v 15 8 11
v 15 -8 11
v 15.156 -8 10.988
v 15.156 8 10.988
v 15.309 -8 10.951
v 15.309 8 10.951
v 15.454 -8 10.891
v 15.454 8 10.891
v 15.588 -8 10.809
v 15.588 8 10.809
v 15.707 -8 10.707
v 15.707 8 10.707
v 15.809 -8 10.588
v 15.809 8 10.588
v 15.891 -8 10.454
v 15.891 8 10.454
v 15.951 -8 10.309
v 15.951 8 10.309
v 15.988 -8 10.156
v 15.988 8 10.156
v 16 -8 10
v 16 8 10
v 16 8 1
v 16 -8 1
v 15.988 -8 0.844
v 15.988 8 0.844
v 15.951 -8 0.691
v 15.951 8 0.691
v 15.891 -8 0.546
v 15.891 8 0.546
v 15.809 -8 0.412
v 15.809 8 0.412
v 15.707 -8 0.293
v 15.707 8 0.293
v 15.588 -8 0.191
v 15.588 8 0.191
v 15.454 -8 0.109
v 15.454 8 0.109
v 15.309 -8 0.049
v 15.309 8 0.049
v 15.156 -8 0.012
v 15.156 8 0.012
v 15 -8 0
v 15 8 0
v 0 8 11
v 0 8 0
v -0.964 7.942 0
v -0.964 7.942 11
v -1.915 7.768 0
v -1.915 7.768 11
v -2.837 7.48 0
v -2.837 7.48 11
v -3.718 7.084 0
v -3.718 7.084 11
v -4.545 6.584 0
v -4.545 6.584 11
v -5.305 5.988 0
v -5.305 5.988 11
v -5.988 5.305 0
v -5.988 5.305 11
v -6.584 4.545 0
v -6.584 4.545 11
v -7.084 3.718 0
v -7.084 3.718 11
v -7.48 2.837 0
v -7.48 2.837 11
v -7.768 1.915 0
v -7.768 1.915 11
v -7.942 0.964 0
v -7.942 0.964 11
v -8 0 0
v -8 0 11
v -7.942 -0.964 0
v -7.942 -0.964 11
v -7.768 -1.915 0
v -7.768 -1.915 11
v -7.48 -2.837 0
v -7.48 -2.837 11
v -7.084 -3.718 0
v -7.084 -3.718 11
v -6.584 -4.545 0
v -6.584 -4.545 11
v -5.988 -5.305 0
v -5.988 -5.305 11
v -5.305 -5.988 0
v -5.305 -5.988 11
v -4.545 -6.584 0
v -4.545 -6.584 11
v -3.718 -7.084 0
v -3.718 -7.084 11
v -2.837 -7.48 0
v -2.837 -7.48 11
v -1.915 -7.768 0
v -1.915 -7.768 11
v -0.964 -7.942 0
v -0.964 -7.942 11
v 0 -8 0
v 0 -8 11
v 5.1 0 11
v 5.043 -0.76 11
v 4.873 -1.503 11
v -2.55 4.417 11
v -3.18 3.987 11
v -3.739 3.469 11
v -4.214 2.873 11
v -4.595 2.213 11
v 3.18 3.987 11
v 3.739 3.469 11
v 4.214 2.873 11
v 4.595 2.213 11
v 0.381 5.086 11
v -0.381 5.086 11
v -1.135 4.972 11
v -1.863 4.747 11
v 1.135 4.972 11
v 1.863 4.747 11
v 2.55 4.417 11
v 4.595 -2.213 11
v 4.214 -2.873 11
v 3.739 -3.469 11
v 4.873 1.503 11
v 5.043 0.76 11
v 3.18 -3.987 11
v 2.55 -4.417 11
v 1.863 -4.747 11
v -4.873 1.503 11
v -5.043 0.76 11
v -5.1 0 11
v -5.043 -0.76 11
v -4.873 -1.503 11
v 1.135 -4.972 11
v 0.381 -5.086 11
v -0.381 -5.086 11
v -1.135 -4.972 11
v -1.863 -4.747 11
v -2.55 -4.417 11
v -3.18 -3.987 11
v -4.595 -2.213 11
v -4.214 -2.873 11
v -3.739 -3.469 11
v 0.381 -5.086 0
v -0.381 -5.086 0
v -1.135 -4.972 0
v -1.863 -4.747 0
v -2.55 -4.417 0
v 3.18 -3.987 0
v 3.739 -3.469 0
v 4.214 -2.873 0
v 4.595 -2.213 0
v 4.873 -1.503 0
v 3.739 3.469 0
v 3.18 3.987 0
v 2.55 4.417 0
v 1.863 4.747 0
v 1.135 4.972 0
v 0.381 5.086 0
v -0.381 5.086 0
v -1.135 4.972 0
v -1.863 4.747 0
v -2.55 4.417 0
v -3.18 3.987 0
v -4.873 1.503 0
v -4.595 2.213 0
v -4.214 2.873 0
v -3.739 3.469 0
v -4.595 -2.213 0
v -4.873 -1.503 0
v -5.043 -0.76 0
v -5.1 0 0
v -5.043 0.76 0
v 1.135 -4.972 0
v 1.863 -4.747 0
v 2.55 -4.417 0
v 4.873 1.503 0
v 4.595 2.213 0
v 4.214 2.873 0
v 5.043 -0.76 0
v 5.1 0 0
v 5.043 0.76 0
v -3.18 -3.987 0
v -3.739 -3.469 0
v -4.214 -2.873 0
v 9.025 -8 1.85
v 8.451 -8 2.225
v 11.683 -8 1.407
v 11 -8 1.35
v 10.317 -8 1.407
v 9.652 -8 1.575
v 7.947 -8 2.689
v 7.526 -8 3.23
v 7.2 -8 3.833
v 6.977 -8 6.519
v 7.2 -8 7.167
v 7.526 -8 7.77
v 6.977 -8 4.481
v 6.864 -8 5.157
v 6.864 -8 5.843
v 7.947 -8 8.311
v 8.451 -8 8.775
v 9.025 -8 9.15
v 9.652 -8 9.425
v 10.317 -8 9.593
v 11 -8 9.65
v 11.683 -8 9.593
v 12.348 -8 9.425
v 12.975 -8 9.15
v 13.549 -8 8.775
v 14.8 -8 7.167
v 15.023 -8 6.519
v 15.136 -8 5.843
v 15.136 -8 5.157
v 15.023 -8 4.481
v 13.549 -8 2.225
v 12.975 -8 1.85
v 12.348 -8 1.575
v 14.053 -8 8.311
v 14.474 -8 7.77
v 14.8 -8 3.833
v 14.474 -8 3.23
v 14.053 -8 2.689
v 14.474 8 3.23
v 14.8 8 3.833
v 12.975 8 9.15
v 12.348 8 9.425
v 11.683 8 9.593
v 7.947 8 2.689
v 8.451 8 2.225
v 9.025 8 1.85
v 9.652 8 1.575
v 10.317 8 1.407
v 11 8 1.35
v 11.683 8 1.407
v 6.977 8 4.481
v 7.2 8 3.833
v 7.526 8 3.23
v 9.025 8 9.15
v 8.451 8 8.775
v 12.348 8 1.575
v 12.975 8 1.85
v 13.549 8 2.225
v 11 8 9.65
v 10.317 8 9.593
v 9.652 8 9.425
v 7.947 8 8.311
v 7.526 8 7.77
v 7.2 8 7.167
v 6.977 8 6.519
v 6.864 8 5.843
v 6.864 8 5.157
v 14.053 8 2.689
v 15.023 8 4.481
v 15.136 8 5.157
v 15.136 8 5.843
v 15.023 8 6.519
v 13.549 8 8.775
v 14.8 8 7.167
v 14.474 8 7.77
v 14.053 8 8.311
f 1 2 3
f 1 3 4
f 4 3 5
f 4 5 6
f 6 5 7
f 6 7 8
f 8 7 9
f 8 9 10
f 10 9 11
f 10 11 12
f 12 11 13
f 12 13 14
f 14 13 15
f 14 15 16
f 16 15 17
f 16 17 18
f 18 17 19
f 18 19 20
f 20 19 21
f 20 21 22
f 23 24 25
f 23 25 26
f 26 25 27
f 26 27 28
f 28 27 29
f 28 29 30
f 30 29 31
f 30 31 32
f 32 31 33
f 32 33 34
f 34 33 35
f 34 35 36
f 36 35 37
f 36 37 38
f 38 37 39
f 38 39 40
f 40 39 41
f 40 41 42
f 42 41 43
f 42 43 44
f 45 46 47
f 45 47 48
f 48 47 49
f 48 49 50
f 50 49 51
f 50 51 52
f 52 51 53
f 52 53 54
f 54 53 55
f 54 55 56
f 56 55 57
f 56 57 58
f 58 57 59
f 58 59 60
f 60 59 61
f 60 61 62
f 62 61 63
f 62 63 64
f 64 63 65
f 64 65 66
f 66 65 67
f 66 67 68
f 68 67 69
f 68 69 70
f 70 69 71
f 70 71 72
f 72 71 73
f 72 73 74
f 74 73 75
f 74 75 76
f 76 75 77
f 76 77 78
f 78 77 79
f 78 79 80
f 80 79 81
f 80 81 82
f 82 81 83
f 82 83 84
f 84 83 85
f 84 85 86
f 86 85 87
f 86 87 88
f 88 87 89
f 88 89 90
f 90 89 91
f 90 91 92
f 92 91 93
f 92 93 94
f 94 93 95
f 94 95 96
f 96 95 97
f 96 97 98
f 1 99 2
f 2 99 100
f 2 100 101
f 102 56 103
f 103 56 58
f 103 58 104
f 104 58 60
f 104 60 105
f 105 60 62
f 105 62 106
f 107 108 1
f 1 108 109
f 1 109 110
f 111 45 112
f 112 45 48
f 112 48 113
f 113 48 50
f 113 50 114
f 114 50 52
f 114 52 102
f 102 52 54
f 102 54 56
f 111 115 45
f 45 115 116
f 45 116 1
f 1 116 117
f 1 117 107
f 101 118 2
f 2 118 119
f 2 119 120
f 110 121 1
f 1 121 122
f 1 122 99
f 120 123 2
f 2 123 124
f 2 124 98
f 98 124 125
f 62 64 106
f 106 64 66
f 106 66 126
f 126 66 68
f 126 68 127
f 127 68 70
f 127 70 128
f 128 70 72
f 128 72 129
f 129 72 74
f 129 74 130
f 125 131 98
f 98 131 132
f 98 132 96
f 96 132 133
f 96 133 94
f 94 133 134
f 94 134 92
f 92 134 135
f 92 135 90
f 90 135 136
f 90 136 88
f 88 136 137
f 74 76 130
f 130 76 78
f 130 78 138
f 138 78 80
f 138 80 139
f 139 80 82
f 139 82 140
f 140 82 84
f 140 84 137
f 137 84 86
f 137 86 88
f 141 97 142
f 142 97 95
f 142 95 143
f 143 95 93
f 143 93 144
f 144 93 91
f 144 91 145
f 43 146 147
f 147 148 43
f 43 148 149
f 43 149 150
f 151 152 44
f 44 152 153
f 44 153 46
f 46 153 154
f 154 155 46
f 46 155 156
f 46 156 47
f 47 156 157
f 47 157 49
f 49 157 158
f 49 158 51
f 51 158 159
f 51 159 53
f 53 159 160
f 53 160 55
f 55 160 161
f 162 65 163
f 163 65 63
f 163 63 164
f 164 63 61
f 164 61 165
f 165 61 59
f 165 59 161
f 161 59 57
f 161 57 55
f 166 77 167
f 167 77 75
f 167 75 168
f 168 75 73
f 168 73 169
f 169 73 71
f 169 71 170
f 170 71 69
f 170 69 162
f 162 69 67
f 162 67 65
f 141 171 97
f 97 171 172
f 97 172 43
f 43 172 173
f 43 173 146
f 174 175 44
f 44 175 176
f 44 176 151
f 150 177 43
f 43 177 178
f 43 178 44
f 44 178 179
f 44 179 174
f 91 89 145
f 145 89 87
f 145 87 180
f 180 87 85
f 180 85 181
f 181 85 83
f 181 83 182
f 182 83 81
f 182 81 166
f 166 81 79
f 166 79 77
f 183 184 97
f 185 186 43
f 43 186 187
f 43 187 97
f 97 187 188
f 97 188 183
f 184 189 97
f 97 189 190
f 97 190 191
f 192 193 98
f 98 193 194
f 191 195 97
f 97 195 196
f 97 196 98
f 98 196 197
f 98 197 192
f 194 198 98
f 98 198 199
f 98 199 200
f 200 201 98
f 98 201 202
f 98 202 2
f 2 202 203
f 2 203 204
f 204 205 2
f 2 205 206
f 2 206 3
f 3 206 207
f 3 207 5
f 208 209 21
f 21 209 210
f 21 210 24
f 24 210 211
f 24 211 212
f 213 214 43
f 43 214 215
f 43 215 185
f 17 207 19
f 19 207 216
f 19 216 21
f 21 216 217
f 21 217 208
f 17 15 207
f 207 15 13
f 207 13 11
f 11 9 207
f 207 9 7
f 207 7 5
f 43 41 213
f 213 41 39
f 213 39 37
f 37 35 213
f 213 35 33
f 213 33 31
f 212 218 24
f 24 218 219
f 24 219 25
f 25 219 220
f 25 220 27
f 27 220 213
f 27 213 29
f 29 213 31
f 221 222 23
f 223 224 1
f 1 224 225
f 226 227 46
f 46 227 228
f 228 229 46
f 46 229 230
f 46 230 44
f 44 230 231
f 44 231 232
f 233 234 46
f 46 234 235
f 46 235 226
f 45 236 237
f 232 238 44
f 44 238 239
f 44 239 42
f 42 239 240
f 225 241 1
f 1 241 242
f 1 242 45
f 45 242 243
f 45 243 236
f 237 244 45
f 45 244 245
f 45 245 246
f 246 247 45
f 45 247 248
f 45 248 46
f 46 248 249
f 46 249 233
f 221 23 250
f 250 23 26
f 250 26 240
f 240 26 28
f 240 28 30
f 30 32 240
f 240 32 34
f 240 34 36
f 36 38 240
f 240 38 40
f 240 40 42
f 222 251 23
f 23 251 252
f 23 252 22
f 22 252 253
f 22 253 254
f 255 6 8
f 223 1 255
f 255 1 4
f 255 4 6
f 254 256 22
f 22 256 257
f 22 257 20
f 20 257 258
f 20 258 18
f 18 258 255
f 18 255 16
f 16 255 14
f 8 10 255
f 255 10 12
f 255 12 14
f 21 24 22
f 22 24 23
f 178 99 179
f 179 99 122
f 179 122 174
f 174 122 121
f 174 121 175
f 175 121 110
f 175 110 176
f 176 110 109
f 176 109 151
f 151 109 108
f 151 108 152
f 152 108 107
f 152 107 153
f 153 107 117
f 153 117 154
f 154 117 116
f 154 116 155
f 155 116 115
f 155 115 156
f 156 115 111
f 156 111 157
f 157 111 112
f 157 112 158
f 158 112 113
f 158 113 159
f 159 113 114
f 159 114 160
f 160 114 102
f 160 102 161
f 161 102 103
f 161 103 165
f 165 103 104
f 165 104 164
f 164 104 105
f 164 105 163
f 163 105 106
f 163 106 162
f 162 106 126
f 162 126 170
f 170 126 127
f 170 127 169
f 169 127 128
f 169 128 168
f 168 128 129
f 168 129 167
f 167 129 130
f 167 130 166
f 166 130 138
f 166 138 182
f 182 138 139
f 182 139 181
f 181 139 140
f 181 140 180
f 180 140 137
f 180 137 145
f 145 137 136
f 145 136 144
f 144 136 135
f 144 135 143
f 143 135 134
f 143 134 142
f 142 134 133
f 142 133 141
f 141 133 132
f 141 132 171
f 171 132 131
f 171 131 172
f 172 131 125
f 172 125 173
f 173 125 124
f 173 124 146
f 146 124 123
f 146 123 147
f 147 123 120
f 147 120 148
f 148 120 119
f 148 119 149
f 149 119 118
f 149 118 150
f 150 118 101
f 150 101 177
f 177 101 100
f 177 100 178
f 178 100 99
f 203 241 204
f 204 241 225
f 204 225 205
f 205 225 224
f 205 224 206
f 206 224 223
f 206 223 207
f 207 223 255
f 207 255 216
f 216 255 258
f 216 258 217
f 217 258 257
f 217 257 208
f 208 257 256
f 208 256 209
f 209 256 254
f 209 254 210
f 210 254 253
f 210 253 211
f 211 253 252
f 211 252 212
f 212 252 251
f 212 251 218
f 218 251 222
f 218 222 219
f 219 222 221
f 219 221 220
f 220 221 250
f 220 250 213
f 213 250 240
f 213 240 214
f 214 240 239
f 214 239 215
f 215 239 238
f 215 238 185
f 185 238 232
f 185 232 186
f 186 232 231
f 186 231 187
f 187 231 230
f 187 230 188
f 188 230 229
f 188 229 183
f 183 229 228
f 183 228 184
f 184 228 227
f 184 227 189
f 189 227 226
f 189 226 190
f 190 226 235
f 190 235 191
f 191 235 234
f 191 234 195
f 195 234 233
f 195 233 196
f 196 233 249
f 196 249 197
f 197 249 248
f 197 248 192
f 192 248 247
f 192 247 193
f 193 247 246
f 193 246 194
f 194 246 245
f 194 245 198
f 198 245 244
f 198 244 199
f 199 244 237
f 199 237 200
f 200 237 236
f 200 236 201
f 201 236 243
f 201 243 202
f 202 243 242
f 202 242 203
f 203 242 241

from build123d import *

# Parameters (mm, degrees)
CROQUIS1_R                 = 8
SALIENTE_EXTRUIR1_DEPTH    = 11
CROQUIS2_W                 = 11
CROQUIS2_H                 = 16
SALIENTE_EXTRUIR2_DEPTH    = 16
CROQUIS3_R                 = 5.1
CORTAR_EXTRUIR1_DEPTH      = 20
CORTAR_EXTRUIR2_DEPTH      = 22
CORTAR_EXTRUIR2_DEPTH_BACK = 22
CROQUIS4_R                 = 4.15
REDONDEO2_R                = 1
REDONDEO3_R                = 1


with BuildPart() as part:
    # Croquis1 → Saliente-Extruir1 (new body)
    with BuildSketch(Plane.XY):
        Circle(CROQUIS1_R)
    extrude(amount=SALIENTE_EXTRUIR1_DEPTH)

    # Croquis2 → Saliente-Extruir2 (add)
    with BuildSketch(Plane(origin=(0, 0, 0), x_dir=(0, 0, -1), z_dir=(1, 0, 0))):
        with Locations((-5.5, 0)):
            Rectangle(CROQUIS2_W, CROQUIS2_H)
    extrude(amount=SALIENTE_EXTRUIR2_DEPTH)

    # Croquis3 → Cortar-Extruir1 (cut)
    with BuildSketch(Plane.XY.offset(11)):
        Circle(CROQUIS3_R)
    extrude(amount=-CORTAR_EXTRUIR1_DEPTH, mode=Mode.SUBTRACT)

    # Croquis4 → Cortar-Extruir2 (cut, two sides: drawn at the far end of the back side and taken through both)
    with BuildSketch(Plane(origin=(0, 0, 0), x_dir=(1, 0, 0), z_dir=(0, 1, 0)).offset(-CORTAR_EXTRUIR2_DEPTH_BACK)):
        with Locations(Location((11, -5.5, 0), (0, 0, 270))):
            Circle(CROQUIS4_R)
    extrude(amount=CORTAR_EXTRUIR2_DEPTH + CORTAR_EXTRUIR2_DEPTH_BACK, mode=Mode.SUBTRACT)

    # Redondeo2
    redondeo2_edges = [part.edges().sort_by_distance(p)[0] for p in [
        (16, 0, 0),
    ]]
    fillet(redondeo2_edges, radius=REDONDEO2_R)

    # Redondeo3
    redondeo3_edges = [part.edges().sort_by_distance(p)[0] for p in [
        (16, 0, 11),
    ]]
    fillet(redondeo3_edges, radius=REDONDEO3_R)


solid = part.part
